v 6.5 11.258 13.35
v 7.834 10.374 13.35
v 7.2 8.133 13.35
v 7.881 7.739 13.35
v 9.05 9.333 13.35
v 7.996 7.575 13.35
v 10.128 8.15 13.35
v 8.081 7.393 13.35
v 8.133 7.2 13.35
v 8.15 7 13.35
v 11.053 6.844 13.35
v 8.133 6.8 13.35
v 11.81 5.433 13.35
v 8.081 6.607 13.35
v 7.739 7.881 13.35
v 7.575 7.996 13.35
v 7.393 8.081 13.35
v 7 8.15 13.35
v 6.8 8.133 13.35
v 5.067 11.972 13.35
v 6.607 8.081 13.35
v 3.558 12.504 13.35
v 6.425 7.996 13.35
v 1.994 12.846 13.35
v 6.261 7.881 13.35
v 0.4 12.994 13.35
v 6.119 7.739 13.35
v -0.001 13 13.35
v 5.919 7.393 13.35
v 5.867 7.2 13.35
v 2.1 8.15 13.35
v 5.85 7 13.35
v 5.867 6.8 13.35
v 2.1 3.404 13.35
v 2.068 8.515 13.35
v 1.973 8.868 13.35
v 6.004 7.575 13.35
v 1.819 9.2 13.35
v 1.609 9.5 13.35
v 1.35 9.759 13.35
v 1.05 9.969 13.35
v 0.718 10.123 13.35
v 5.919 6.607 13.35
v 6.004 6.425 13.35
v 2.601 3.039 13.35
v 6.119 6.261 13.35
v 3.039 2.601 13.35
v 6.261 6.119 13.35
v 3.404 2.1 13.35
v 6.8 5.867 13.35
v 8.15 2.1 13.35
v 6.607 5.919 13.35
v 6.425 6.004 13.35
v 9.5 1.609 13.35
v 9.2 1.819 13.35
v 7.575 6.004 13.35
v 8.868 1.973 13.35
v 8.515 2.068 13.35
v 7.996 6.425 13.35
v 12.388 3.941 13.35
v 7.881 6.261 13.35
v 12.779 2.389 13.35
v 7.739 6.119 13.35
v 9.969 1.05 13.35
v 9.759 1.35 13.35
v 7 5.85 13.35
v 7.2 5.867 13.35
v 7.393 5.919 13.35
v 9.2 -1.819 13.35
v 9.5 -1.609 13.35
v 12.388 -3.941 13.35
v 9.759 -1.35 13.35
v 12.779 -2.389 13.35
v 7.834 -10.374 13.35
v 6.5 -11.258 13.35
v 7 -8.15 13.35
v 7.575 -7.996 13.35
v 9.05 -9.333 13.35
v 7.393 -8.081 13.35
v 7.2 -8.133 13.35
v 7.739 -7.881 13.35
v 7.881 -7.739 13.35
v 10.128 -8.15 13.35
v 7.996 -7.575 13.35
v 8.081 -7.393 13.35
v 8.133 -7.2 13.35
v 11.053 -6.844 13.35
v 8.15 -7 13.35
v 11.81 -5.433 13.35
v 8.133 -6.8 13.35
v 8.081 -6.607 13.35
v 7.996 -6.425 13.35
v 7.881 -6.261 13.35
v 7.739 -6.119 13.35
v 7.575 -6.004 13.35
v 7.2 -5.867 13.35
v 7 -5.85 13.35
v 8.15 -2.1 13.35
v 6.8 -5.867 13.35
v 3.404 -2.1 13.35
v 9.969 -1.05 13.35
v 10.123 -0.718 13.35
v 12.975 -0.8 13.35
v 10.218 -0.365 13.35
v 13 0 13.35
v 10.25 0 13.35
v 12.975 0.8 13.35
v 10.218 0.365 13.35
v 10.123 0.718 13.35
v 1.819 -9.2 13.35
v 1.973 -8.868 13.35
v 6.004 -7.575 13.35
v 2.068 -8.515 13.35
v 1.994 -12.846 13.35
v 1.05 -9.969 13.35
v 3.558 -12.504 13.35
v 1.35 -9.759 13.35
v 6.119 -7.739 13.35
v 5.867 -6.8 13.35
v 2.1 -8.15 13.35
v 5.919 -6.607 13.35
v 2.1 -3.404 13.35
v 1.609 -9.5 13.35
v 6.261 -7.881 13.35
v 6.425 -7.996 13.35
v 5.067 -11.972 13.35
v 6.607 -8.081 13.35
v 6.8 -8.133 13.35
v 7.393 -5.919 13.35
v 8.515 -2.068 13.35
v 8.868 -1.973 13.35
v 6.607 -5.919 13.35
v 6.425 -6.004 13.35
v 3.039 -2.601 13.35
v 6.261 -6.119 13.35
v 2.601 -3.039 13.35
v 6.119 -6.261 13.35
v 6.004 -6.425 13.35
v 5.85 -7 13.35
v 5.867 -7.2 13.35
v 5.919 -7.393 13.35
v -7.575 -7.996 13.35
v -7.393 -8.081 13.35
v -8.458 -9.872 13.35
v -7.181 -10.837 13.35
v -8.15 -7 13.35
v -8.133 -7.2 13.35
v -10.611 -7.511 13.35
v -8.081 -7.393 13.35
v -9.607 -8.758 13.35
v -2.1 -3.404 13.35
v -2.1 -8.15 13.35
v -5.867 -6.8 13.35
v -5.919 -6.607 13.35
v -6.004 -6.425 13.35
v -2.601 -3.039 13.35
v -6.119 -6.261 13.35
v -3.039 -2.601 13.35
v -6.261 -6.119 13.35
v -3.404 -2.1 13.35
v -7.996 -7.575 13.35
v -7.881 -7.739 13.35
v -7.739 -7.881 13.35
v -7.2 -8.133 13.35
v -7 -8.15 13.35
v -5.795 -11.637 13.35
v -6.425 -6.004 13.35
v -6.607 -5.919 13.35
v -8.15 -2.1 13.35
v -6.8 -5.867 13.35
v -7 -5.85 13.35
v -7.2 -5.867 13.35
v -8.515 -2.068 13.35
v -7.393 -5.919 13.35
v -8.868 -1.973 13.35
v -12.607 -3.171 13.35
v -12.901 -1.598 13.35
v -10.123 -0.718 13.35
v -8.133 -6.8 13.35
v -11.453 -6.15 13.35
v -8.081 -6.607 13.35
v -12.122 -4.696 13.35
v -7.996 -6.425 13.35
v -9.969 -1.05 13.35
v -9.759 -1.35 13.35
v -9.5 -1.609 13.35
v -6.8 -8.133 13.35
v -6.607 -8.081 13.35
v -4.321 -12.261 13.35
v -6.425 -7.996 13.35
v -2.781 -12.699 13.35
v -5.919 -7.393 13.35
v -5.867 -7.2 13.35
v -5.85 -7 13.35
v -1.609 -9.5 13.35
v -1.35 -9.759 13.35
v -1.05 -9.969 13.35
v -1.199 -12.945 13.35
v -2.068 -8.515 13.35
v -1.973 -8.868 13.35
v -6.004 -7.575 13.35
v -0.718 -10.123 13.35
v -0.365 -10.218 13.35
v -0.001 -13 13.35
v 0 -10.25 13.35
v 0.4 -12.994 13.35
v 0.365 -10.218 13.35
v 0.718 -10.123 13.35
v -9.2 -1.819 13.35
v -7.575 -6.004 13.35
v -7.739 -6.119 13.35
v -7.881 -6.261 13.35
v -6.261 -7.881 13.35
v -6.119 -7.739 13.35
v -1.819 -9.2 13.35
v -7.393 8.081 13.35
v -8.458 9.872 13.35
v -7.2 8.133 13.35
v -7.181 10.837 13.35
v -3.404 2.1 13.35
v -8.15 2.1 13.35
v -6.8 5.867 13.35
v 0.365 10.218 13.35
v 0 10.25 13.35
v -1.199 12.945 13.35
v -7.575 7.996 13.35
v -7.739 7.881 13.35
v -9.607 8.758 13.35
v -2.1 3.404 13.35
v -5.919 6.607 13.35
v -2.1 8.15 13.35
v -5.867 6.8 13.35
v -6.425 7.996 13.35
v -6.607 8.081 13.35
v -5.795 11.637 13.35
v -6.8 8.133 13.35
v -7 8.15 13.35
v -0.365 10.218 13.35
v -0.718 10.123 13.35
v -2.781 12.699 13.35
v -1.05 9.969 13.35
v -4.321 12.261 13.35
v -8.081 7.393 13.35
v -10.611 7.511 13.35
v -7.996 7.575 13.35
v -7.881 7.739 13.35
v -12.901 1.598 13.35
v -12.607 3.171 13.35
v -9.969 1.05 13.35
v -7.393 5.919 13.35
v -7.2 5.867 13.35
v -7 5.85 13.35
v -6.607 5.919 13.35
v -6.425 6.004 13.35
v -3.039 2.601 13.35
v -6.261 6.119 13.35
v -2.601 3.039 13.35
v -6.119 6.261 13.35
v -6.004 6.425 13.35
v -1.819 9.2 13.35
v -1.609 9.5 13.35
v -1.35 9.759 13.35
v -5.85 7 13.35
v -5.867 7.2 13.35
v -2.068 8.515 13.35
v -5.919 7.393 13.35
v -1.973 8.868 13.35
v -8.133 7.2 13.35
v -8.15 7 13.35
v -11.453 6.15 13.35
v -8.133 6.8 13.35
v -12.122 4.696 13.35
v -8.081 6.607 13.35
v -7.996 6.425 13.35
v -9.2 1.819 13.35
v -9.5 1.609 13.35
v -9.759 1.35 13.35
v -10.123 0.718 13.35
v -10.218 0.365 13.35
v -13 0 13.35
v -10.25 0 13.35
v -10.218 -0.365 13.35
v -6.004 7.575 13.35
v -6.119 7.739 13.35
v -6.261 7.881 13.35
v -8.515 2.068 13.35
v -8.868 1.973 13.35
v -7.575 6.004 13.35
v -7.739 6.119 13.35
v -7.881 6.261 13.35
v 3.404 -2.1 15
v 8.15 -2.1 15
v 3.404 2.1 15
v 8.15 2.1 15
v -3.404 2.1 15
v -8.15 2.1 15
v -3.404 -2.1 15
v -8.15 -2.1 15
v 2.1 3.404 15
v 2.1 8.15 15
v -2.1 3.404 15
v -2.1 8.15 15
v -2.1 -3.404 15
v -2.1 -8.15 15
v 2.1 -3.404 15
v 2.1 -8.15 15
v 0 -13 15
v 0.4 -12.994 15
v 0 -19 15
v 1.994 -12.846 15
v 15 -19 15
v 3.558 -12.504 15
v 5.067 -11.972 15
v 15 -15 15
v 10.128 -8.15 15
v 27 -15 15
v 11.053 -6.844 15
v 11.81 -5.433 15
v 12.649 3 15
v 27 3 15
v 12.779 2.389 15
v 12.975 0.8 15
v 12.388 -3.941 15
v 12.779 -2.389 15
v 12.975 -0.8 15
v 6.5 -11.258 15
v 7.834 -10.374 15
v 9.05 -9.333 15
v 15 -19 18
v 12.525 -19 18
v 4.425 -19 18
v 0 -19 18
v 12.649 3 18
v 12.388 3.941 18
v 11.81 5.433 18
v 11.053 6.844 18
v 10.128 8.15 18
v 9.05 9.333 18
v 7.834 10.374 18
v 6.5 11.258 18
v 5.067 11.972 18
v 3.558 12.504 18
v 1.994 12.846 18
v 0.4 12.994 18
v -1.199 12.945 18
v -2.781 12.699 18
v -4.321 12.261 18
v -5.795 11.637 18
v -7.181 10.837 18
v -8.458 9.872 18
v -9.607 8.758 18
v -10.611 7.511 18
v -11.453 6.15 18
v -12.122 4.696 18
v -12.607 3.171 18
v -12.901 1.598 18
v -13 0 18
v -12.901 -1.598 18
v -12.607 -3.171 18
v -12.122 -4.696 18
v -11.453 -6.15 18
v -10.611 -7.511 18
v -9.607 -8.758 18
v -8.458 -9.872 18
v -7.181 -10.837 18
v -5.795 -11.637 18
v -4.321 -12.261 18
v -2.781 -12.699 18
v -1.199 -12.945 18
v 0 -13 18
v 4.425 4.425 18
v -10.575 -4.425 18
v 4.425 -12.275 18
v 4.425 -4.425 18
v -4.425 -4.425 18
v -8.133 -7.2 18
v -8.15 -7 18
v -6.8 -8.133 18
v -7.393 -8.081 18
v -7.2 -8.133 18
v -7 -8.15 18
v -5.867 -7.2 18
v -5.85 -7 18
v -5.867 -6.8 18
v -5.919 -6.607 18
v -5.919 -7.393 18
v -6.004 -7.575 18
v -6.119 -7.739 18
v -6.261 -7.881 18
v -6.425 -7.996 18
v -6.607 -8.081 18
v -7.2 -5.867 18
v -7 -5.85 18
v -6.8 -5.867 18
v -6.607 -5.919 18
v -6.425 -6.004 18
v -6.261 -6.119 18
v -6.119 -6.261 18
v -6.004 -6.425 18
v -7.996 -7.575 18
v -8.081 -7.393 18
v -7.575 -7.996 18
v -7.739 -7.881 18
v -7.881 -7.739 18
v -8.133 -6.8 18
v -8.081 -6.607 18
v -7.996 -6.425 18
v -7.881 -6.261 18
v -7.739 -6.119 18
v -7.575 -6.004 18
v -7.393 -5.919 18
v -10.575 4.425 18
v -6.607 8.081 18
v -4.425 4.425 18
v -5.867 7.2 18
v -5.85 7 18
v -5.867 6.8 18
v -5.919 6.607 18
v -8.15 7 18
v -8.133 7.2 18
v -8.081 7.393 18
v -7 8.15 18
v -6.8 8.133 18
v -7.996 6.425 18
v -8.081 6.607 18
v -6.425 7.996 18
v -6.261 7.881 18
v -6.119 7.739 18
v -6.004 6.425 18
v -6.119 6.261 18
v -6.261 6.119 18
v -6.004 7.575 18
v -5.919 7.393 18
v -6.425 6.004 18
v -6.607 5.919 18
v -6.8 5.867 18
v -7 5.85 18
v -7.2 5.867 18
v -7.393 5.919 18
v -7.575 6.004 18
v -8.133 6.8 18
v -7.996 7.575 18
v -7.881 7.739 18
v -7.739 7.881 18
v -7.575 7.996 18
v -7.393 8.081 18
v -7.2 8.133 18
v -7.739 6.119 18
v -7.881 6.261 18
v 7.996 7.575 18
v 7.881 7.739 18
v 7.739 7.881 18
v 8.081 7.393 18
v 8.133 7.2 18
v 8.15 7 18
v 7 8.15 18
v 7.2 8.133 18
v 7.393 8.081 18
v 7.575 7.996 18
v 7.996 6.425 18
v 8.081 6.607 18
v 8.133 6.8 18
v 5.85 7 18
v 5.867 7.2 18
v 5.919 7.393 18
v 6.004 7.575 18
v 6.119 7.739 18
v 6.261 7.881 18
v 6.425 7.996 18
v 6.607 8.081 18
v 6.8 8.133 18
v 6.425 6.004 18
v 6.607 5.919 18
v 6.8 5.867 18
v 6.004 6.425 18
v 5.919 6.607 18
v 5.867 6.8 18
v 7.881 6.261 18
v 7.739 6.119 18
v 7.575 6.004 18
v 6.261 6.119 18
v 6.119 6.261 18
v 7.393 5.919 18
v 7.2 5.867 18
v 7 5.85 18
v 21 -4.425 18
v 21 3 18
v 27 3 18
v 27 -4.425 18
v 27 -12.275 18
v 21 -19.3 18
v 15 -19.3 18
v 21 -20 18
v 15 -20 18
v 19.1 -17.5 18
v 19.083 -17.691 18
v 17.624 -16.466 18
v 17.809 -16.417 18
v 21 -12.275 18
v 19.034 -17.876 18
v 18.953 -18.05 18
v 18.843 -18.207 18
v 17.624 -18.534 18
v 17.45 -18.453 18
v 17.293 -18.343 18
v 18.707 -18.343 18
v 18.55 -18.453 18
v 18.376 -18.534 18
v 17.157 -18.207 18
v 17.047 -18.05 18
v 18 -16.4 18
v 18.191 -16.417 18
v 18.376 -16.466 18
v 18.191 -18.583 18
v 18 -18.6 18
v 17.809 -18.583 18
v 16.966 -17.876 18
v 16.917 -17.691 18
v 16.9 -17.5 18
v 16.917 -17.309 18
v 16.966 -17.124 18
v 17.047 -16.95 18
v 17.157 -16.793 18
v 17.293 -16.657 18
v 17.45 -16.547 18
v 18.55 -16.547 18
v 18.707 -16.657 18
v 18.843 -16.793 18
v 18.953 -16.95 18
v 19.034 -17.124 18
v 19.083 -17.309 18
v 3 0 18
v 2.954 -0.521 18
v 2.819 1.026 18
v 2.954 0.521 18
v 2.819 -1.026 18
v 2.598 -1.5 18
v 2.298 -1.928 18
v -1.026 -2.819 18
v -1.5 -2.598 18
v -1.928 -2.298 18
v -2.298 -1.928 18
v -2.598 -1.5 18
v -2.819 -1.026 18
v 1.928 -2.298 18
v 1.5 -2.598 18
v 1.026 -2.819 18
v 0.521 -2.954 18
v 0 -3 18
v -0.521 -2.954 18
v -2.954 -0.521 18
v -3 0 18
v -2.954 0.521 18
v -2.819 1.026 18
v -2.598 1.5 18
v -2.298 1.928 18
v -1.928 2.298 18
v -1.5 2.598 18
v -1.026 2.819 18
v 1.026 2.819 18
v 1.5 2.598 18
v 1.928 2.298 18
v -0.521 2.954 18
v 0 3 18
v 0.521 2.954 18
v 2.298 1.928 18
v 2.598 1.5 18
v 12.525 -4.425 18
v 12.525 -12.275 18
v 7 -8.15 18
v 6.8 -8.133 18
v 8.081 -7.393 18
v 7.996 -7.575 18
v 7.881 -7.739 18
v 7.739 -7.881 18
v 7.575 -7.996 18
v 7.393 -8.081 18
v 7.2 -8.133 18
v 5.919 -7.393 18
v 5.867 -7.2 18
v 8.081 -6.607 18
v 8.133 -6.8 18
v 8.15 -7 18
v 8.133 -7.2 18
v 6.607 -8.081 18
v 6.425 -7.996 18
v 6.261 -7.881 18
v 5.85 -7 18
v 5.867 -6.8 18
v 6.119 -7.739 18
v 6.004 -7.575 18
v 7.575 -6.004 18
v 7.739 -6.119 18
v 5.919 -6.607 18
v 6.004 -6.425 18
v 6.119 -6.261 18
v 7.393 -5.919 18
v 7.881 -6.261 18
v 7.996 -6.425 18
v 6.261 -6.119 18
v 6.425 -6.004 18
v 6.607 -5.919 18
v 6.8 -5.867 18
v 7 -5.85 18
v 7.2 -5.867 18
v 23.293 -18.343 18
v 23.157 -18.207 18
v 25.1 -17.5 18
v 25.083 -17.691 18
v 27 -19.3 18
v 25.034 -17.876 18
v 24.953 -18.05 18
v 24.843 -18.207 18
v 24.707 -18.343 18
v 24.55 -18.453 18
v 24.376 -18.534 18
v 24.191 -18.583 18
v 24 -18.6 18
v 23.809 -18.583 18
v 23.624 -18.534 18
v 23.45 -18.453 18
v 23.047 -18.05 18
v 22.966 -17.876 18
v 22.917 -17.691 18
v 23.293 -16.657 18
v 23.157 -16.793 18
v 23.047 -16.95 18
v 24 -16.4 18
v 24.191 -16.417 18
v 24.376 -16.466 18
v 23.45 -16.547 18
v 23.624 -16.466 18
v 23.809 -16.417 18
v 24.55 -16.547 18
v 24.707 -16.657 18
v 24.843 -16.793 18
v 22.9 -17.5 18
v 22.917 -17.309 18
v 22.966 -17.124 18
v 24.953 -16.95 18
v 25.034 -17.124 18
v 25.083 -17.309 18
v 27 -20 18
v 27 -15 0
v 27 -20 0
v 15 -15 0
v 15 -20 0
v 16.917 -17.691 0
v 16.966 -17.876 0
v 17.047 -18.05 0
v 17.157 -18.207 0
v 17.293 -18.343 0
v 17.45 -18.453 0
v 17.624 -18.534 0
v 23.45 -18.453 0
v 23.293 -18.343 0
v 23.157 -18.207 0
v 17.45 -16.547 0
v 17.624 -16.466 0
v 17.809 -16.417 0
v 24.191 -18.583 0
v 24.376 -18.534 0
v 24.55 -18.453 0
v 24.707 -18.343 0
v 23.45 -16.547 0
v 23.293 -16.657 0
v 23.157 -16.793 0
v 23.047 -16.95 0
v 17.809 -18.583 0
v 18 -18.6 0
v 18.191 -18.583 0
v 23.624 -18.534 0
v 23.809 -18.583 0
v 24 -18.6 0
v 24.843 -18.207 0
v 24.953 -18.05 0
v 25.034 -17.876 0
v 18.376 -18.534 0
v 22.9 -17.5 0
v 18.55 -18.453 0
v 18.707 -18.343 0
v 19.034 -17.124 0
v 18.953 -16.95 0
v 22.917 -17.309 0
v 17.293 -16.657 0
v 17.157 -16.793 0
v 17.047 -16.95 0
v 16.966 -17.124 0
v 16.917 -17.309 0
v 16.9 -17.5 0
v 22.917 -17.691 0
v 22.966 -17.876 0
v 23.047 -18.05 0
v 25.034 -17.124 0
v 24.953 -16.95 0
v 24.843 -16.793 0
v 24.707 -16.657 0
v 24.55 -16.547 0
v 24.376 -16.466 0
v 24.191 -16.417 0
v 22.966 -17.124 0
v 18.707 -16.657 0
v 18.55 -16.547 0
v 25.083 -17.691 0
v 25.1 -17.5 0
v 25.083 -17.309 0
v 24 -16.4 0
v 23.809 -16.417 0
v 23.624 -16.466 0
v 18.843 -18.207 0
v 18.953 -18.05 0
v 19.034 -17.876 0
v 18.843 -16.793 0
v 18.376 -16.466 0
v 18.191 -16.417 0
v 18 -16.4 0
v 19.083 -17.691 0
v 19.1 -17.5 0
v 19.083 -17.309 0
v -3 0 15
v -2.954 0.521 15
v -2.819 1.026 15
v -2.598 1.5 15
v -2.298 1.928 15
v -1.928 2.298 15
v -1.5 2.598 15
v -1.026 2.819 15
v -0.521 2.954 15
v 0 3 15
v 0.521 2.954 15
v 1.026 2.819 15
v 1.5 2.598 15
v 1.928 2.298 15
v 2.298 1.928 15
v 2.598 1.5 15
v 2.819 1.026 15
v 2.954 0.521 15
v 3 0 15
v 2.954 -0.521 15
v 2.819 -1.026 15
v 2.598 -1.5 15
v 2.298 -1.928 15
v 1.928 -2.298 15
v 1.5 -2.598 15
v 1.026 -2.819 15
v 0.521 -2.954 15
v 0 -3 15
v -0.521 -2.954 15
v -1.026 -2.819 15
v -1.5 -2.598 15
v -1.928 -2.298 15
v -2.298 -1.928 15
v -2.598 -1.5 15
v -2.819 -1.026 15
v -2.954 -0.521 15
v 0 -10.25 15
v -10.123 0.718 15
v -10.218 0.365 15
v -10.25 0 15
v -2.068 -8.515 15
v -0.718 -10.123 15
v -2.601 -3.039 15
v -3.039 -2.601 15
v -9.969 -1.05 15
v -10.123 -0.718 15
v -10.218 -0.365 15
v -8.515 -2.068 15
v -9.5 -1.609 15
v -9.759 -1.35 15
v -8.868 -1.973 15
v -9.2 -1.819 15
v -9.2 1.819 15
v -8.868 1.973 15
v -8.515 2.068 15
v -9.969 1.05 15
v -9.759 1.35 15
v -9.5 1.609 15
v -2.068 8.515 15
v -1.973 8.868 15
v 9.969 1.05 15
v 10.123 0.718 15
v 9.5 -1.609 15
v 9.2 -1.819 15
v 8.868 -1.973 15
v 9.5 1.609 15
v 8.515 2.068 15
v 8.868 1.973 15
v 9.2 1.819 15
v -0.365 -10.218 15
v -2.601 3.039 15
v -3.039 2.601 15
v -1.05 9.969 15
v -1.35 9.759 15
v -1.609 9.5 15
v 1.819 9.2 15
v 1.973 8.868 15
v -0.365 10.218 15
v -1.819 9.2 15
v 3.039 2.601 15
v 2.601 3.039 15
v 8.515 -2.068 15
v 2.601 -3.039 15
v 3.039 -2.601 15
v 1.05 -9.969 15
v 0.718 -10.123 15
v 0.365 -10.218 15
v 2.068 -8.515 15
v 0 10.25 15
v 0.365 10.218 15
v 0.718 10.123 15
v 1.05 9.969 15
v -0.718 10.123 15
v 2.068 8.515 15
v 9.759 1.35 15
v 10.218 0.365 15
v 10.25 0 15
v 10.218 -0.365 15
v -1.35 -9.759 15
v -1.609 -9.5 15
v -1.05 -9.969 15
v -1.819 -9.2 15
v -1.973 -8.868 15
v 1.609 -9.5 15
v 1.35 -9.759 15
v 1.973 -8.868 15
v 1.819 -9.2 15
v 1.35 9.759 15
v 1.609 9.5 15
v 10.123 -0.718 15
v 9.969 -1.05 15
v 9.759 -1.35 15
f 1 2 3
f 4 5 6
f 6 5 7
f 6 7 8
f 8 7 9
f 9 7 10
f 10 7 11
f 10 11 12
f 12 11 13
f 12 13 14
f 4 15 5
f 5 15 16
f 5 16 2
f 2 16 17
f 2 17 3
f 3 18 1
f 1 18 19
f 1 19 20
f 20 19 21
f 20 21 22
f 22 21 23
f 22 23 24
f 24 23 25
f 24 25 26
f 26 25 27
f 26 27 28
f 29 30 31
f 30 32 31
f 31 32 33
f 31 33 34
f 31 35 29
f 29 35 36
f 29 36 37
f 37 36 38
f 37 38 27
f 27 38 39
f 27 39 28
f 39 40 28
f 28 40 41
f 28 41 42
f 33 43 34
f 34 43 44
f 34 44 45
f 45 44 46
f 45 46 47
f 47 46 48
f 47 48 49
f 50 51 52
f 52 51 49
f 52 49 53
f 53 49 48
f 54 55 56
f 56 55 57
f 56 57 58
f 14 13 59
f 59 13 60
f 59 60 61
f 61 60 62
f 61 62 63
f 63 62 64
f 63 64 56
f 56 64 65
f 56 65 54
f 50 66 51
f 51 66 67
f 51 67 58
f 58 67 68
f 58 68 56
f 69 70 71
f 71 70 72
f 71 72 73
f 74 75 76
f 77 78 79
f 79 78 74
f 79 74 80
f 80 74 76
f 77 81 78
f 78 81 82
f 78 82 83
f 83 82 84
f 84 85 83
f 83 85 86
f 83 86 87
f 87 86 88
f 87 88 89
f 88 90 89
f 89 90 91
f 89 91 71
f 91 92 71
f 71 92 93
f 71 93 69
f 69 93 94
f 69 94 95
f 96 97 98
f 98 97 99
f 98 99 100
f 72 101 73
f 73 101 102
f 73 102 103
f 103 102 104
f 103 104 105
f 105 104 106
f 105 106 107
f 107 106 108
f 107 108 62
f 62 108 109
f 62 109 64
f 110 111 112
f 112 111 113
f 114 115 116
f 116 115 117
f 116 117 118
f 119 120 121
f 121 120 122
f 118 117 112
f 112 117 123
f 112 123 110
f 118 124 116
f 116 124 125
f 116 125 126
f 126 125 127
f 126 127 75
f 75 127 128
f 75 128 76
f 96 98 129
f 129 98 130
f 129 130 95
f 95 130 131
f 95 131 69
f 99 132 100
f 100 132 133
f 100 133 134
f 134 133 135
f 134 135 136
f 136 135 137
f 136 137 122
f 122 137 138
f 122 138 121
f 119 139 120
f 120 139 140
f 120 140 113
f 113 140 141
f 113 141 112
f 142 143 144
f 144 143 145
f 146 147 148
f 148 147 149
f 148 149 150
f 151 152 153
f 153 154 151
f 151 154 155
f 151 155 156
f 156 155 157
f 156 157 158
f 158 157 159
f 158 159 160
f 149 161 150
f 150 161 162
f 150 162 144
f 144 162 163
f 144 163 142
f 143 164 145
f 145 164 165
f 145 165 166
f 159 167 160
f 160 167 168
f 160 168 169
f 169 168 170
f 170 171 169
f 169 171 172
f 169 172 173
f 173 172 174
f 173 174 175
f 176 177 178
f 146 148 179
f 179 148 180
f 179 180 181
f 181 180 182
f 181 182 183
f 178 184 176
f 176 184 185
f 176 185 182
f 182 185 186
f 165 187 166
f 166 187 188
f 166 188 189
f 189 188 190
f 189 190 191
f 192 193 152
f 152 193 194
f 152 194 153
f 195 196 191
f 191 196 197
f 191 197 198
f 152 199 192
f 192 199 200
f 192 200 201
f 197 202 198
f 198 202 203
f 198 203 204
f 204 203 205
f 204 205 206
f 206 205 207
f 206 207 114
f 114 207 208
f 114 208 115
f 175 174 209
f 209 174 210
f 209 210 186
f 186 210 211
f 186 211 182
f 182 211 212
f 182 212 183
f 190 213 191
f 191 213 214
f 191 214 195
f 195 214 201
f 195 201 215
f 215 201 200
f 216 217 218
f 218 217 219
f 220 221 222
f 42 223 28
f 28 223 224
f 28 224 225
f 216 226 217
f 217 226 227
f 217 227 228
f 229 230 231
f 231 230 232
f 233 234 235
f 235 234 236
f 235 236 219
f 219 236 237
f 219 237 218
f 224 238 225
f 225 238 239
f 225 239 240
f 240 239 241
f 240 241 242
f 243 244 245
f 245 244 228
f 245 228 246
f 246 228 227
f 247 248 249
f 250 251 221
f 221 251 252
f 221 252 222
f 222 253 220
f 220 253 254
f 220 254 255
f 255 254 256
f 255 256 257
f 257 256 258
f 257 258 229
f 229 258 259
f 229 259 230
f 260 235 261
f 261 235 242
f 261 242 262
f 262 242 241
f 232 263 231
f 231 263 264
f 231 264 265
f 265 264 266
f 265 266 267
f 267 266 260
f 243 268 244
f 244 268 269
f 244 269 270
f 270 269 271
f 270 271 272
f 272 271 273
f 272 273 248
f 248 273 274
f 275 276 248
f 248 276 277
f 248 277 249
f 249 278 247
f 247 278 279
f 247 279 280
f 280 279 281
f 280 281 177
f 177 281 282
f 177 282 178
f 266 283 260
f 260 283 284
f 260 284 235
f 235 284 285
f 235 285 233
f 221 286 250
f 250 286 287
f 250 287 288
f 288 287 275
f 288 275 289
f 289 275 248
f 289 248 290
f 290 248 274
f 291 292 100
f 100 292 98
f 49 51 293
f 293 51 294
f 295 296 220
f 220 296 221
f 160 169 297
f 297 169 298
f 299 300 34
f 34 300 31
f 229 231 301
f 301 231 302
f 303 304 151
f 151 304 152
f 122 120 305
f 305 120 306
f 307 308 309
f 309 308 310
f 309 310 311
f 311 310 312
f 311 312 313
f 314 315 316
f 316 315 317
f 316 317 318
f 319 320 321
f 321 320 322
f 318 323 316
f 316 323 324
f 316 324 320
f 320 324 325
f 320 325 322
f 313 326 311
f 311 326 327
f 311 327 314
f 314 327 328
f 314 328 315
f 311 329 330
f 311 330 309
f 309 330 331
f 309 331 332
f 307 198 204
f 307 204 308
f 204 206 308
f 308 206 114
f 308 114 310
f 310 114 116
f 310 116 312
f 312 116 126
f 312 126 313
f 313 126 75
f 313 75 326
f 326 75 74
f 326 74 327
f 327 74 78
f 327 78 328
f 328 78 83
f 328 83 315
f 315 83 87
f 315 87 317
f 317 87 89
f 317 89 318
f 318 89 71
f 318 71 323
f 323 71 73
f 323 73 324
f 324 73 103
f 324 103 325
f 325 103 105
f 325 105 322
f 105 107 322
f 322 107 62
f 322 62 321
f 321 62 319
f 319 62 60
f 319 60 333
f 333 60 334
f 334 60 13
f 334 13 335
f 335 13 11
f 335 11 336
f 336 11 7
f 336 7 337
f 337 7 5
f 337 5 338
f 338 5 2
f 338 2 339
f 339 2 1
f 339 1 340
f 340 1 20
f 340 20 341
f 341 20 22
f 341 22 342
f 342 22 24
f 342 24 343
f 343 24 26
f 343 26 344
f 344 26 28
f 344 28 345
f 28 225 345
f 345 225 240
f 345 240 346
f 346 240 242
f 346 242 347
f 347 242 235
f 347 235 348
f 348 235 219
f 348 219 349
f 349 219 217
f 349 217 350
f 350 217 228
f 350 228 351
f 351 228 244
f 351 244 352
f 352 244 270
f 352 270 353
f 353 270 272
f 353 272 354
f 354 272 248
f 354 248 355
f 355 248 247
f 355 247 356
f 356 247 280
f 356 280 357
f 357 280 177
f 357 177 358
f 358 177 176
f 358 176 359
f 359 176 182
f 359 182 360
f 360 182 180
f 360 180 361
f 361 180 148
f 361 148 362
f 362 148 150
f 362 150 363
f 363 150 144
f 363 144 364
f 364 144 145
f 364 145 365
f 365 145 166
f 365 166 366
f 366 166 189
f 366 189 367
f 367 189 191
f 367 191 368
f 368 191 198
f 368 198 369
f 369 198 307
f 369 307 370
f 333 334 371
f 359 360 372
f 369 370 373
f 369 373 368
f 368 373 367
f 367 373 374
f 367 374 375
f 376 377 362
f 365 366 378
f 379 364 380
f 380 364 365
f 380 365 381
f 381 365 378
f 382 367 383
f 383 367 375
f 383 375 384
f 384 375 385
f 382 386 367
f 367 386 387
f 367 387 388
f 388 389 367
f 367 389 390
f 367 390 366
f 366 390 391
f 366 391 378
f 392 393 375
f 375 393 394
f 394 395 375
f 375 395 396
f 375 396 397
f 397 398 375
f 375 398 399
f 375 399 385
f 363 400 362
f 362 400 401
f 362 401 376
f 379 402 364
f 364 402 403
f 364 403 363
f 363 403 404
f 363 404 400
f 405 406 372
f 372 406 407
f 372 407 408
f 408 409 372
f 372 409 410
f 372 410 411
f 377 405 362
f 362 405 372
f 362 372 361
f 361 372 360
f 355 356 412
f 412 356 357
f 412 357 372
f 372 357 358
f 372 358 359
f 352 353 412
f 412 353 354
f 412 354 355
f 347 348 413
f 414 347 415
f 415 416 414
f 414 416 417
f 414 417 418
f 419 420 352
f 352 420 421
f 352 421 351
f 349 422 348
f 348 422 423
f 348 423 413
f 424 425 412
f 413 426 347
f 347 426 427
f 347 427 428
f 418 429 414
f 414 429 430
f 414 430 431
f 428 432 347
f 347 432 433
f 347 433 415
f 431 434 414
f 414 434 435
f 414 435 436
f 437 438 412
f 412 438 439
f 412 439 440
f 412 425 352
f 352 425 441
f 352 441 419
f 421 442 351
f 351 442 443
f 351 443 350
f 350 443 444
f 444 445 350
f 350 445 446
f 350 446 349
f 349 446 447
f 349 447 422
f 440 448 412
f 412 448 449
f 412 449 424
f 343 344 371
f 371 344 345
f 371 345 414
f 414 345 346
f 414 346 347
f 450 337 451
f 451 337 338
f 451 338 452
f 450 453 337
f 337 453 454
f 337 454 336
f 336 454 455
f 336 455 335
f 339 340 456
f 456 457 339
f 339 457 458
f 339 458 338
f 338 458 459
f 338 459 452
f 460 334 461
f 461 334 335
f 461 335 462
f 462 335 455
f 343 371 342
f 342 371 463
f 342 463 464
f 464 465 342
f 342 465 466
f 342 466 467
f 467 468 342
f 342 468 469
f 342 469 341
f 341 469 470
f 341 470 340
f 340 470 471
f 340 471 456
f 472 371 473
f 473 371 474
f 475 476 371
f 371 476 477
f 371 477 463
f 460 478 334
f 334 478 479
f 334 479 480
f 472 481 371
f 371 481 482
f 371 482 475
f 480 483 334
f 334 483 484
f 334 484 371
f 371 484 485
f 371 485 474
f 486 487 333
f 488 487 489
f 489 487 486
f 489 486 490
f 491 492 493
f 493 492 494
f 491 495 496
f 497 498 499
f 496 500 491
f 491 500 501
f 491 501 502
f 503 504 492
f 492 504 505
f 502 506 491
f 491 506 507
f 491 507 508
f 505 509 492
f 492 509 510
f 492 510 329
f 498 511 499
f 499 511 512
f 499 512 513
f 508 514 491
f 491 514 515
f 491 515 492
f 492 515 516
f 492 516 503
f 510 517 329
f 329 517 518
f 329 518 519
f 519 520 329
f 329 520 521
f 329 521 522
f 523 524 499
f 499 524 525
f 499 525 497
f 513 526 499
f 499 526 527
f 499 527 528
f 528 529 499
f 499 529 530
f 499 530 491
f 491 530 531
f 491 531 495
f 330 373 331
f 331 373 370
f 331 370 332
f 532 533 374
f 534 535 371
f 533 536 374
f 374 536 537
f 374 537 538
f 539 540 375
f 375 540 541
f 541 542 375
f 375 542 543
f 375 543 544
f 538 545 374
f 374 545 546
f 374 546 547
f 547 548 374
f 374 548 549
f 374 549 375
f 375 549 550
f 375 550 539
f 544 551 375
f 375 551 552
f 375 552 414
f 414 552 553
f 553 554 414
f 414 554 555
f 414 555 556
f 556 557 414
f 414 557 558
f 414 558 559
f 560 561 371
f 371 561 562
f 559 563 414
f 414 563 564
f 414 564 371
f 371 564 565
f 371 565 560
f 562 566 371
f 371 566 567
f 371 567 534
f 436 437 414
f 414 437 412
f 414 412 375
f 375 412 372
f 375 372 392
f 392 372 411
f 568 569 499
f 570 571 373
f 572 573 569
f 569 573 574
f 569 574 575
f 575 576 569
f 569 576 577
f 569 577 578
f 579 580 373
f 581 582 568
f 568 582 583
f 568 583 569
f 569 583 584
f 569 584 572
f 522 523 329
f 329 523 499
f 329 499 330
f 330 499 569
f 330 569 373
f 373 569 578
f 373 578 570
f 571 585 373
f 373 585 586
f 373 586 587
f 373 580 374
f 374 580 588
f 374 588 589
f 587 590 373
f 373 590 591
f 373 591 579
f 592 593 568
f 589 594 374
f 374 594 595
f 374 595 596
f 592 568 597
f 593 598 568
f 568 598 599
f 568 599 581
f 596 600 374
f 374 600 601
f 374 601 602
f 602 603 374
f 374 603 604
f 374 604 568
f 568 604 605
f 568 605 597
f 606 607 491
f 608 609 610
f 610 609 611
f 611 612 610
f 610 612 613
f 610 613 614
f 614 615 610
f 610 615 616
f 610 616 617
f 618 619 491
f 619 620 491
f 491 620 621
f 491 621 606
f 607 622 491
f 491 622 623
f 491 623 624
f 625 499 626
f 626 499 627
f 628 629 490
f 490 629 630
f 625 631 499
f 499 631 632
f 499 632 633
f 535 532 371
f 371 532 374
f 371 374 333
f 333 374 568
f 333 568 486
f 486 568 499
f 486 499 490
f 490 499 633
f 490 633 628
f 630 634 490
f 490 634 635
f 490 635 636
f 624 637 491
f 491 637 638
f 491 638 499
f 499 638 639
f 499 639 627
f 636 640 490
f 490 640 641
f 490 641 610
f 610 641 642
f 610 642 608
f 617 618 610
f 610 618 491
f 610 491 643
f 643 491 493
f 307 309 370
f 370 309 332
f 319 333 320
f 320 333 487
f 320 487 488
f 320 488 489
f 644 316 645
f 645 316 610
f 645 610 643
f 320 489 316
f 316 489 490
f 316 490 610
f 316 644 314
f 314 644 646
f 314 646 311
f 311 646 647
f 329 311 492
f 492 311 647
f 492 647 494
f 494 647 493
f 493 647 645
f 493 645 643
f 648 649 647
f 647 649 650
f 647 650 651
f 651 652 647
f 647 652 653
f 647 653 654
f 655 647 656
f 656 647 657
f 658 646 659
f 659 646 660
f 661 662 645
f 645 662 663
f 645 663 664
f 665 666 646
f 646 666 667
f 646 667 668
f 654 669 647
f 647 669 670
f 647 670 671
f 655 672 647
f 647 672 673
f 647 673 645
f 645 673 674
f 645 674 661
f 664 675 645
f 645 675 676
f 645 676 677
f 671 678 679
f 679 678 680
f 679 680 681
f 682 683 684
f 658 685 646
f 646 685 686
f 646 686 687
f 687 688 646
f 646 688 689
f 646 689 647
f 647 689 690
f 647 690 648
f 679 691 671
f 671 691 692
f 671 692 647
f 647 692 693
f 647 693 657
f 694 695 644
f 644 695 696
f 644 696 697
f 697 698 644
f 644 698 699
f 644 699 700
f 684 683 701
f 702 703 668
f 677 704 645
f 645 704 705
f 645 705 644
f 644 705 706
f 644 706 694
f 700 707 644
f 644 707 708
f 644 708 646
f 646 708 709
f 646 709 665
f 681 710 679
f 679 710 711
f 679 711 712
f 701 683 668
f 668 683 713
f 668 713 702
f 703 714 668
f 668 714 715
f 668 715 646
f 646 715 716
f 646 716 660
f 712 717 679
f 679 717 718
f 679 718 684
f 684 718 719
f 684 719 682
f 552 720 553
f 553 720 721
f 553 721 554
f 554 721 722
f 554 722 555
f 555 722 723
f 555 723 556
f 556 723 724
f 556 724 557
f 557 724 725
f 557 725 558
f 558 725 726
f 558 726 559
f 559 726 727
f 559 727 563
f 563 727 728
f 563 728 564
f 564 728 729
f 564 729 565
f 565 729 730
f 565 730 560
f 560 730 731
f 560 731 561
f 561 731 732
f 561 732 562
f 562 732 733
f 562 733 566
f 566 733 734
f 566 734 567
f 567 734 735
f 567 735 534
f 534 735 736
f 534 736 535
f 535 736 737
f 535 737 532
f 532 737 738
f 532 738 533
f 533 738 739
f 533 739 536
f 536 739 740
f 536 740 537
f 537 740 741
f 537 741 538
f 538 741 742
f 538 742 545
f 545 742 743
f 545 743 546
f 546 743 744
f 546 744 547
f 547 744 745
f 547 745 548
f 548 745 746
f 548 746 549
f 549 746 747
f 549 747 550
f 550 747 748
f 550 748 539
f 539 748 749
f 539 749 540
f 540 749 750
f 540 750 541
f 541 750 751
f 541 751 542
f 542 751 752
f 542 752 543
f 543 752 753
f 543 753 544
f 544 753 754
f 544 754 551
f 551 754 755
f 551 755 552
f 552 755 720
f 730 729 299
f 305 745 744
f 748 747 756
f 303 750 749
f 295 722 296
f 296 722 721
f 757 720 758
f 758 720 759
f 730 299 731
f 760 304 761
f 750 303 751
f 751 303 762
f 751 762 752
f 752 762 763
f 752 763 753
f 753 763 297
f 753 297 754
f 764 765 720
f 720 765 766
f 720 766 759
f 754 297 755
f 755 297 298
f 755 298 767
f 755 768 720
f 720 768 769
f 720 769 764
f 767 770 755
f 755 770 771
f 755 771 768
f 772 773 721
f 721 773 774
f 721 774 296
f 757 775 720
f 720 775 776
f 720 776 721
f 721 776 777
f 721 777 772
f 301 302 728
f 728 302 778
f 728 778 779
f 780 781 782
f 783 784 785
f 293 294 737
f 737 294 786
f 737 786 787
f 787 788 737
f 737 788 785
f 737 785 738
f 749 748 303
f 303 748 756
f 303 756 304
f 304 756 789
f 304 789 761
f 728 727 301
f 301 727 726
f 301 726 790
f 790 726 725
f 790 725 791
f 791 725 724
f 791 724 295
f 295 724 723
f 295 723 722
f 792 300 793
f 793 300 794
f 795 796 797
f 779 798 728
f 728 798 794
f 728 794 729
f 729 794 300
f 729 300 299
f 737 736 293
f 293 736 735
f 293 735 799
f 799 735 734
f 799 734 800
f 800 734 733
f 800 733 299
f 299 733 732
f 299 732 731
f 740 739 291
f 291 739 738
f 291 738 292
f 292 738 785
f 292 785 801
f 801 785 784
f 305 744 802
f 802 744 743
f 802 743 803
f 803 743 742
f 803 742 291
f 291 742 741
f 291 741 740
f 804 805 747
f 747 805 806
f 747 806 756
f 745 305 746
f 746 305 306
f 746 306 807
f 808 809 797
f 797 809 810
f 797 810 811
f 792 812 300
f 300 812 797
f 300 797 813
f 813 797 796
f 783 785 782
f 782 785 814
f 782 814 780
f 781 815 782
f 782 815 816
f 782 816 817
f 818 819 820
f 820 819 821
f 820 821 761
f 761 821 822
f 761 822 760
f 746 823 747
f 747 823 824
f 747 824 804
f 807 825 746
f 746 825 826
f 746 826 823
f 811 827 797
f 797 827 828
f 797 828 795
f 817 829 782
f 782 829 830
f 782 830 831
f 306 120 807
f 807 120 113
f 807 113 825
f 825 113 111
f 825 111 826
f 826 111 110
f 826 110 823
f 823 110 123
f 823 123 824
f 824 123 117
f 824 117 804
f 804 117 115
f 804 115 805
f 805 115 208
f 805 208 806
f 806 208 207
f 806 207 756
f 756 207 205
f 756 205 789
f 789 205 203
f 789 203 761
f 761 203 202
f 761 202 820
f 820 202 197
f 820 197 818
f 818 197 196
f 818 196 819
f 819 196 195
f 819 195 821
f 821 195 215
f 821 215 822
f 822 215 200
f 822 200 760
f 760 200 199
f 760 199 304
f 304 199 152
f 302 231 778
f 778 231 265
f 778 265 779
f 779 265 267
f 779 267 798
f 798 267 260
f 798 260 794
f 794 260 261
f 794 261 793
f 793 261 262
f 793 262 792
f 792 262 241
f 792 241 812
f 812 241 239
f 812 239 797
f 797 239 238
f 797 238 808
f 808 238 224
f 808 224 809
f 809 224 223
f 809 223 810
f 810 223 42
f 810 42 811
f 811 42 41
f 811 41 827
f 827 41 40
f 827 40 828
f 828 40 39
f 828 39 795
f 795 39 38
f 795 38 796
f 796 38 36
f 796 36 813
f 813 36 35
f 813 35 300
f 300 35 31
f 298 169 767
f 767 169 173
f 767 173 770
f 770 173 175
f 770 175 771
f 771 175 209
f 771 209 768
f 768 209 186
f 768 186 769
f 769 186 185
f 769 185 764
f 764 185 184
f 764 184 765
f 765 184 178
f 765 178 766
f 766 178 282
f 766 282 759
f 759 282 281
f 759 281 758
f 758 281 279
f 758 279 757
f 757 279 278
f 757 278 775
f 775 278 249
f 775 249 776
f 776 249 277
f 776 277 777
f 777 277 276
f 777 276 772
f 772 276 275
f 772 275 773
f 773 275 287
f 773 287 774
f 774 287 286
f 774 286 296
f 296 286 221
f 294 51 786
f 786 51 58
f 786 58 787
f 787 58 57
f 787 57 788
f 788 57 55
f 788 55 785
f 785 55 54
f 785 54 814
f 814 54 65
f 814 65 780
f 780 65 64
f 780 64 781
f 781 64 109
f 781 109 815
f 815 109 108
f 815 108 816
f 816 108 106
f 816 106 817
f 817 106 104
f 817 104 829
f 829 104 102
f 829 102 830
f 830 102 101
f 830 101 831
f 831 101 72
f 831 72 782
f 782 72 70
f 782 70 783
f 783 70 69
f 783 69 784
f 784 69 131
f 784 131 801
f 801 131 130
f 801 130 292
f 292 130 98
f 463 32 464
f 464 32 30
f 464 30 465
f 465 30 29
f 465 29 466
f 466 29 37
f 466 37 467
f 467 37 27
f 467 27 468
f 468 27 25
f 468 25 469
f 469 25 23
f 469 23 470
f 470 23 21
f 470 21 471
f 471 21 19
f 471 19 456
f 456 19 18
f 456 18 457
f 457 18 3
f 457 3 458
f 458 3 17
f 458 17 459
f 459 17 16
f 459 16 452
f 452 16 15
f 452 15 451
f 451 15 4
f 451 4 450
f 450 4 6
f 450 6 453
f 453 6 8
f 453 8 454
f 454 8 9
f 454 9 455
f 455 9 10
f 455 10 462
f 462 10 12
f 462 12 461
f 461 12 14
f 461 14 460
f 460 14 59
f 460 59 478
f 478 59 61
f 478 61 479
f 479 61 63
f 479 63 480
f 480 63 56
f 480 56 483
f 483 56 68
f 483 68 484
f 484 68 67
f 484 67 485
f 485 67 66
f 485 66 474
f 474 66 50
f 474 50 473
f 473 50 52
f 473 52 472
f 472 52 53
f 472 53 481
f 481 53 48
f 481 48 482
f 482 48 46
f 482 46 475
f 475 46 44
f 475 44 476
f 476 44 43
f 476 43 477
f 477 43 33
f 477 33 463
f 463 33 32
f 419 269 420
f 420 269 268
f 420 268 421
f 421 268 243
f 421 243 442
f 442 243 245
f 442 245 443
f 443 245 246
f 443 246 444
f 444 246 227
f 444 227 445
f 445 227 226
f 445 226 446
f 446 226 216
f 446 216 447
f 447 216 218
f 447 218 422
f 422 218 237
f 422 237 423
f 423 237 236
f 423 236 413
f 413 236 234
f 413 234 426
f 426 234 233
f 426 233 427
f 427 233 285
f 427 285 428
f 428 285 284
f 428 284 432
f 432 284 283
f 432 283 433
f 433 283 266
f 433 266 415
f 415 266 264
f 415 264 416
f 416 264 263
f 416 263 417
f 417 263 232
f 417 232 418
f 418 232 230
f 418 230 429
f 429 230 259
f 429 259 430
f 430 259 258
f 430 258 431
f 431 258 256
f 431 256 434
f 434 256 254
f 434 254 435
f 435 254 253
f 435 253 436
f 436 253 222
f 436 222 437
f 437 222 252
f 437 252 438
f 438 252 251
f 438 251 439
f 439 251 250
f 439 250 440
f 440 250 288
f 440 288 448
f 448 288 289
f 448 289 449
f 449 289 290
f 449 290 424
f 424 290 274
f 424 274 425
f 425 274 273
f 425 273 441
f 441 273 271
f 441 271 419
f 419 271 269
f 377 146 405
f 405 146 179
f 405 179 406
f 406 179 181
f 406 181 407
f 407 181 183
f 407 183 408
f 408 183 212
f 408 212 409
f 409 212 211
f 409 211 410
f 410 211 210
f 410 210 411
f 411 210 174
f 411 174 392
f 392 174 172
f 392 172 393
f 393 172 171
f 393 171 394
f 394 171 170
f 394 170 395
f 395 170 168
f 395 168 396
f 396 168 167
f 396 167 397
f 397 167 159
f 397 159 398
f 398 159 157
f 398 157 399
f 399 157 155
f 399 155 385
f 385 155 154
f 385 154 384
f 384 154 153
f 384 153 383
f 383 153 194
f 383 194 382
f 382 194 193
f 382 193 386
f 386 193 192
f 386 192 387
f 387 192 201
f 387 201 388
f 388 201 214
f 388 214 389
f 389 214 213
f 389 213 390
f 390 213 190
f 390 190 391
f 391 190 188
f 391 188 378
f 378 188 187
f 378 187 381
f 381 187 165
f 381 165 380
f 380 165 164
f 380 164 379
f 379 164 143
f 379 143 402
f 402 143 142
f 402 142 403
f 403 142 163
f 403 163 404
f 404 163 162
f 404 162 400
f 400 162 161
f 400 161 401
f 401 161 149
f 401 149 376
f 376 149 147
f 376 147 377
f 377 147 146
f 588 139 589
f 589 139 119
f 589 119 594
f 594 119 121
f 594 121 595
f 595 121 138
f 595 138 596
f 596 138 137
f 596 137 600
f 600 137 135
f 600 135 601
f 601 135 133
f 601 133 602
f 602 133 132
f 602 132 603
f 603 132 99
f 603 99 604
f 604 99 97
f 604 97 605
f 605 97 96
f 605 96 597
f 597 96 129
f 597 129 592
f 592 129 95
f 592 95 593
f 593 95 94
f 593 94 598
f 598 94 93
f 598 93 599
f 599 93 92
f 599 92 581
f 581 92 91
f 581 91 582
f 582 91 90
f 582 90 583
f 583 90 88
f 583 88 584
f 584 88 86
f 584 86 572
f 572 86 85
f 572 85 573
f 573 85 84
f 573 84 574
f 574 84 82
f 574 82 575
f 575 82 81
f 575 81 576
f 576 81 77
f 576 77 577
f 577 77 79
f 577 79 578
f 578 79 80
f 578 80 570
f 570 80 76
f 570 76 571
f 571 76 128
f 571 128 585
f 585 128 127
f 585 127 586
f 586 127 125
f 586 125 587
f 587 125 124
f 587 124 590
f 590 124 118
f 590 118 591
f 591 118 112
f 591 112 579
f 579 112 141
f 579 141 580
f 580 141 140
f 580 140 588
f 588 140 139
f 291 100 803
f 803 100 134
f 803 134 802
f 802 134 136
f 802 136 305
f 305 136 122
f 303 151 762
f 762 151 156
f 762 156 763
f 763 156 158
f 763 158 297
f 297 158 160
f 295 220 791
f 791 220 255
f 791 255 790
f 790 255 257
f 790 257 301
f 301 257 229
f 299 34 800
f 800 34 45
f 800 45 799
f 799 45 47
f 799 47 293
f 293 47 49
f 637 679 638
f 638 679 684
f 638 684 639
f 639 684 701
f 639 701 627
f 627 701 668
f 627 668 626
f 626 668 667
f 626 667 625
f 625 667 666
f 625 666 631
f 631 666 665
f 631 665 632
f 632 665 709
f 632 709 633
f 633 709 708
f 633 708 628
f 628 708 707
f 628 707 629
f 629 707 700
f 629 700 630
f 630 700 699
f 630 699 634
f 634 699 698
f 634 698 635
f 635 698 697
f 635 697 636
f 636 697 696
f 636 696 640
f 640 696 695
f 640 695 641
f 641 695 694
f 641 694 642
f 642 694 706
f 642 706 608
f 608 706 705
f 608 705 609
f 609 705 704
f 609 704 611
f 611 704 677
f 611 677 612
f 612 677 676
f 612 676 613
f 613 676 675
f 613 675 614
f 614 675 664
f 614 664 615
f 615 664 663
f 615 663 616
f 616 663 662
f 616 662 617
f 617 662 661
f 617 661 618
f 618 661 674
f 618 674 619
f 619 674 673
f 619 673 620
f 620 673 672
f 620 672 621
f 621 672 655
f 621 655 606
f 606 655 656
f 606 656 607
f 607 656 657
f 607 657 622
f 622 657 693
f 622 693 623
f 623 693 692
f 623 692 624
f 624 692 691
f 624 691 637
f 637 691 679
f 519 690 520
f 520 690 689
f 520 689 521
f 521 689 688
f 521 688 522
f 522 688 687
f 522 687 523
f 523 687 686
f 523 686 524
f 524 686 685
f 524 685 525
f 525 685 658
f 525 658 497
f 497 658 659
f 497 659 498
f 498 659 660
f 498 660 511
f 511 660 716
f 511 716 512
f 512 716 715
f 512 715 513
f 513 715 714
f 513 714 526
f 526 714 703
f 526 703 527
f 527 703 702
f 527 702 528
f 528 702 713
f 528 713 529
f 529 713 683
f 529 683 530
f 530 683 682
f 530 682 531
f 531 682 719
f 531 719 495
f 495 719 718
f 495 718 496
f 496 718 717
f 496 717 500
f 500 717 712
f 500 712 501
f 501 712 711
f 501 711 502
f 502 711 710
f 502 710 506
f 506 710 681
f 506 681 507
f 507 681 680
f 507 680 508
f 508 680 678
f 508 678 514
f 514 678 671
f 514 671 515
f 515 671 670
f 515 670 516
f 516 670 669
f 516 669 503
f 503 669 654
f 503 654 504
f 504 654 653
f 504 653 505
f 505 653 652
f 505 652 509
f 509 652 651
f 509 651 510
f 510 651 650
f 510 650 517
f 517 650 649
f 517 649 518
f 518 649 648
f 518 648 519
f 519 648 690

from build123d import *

# Parameters (mm, degrees)
STOCK_HORN_ATTACHMENT_START          = 15
STOCK_HORN_ATTACHMENT_PROFILE_R      = 13
STOCK_HORN_ATTACHMENT_DEPTH          = 3
FINGER_ARM_START                     = 15
FINGER_ARM_PROFILE_W                 = 27
FINGER_ARM_PROFILE_H                 = 22
FINGER_ARM_DEPTH                     = 3
DESCENDING_CONTACT_FINGER_PROFILE_W  = 12
DESCENDING_CONTACT_FINGER_PROFILE_H  = 5
DESCENDING_CONTACT_FINGER_DEPTH      = 18
HORN_CENTER_ACCESS_START             = -50
HORN_CENTER_ACCESS_PROFILE_R         = 3
HORN_CENTER_ACCESS_DEPTH             = 89.118237105
CAPTURED_HORN_KEY_BOSS_START         = 13.35
CAPTURED_HORN_KEY_BOSS_PROFILE_R     = 13
CAPTURED_HORN_KEY_BOSS_DEPTH         = 1.65
KEY_POCKET_HUB_START                 = 13.35
STOCK_HORN_POCKET_HUB_R              = 3.55
KEY_POCKET_HUB_DEPTH                 = 1.65
KEY_POCKET_HORIZONTAL_START          = 13.35
STOCK_HORN_POCKET_HORIZONTAL_W       = 16.3
STOCK_HORN_POCKET_HORIZONTAL_H       = 4.2
KEY_POCKET_HORIZONTAL_DEPTH          = 1.65
KEY_POCKET_VERTICAL_START            = 13.35
STOCK_HORN_POCKET_VERTICAL_W         = 4.2
STOCK_HORN_POCKET_VERTICAL_H         = 16.3
KEY_POCKET_VERTICAL_DEPTH            = 1.65
KEY_POCKET_ROUNDED_TIPS_START        = 13.35
STOCK_HORN_POCKET_ROUNDED_TIPS_R     = 2.1
KEY_POCKET_ROUNDED_TIPS_DEPTH        = 1.65
UNMODIFIED_HORN_CAPTURE_M2_START     = -50
UNMODIFIED_HORN_CAPTURE_M2_PROFILE_R = 1.15
UNMODIFIED_HORN_CAPTURE_M2_DEPTH     = 89.118237105
HUB_CLEARANCE_IN_KEY_BOSS_ONLY_START = 13.35
HORN_CENTER_HUB_CLEARANCE_R          = 4
HUB_CLEARANCE_IN_KEY_BOSS_ONLY_DEPTH = 1.65
CONTACT_PAD_KEEPER_START             = -50
CONTACT_PAD_KEEPER_PROFILE_R         = 1.1
CONTACT_PAD_KEEPER_DEPTH             = 89.118237105


with BuildPart() as part:
    # Stock_horn_attachment_profile → Stock_horn_attachment (new body)
    with BuildSketch(Plane.XY.offset(STOCK_HORN_ATTACHMENT_START)):
        Circle(STOCK_HORN_ATTACHMENT_PROFILE_R)
    extrude(amount=STOCK_HORN_ATTACHMENT_DEPTH)

    # Finger_arm_profile → Finger_arm (add)
    with BuildSketch(Plane.XY.offset(FINGER_ARM_START)):
        with Locations((13.5, -8)):
            Rectangle(FINGER_ARM_PROFILE_W, FINGER_ARM_PROFILE_H)
    extrude(amount=FINGER_ARM_DEPTH)

    # Descending_contact_finger_profile → Descending_contact_finger (add)
    with BuildSketch(Plane.XY):
        with Locations((21, -17.5)):
            Rectangle(DESCENDING_CONTACT_FINGER_PROFILE_W, DESCENDING_CONTACT_FINGER_PROFILE_H)
    extrude(amount=DESCENDING_CONTACT_FINGER_DEPTH)

    # Horn_center_access_profile → Horn_center_access (cut, through all)
    with BuildSketch(Plane.XY.offset(HORN_CENTER_ACCESS_START)):
        Circle(HORN_CENTER_ACCESS_PROFILE_R)
    extrude(amount=HORN_CENTER_ACCESS_DEPTH, mode=Mode.SUBTRACT)

    # Captured_horn_key_boss_profile → Captured_horn_key_boss (add)
    with BuildSketch(Plane.XY.offset(CAPTURED_HORN_KEY_BOSS_START)):
        with Locations(Location((0, 0, 0), (0, 0, 270))):
            Circle(CAPTURED_HORN_KEY_BOSS_PROFILE_R)
    extrude(amount=CAPTURED_HORN_KEY_BOSS_DEPTH)

    # Stock_horn_pocket_Hub → Key_pocket_Hub (cut)
    with BuildSketch(Plane.XY.offset(KEY_POCKET_HUB_START)):
        Circle(STOCK_HORN_POCKET_HUB_R)
    extrude(amount=KEY_POCKET_HUB_DEPTH, mode=Mode.SUBTRACT)

    # Stock_horn_pocket_Horizontal → Key_pocket_Horizontal (cut)
    with BuildSketch(Plane.XY.offset(KEY_POCKET_HORIZONTAL_START)):
        Rectangle(STOCK_HORN_POCKET_HORIZONTAL_W, STOCK_HORN_POCKET_HORIZONTAL_H)
    extrude(amount=KEY_POCKET_HORIZONTAL_DEPTH, mode=Mode.SUBTRACT)

    # Stock_horn_pocket_Vertical → Key_pocket_Vertical (cut)
    with BuildSketch(Plane.XY.offset(KEY_POCKET_VERTICAL_START)):
        Rectangle(STOCK_HORN_POCKET_VERTICAL_W, STOCK_HORN_POCKET_VERTICAL_H)
    extrude(amount=KEY_POCKET_VERTICAL_DEPTH, mode=Mode.SUBTRACT)

    # Stock_horn_pocket_Rounded_tips → Key_pocket_Rounded_tips (cut)
    with BuildSketch(Plane.XY.offset(KEY_POCKET_ROUNDED_TIPS_START)):
        with Locations((8.15, 0)):
            Circle(STOCK_HORN_POCKET_ROUNDED_TIPS_R)
        with Locations((-8.15, 0)):
            Circle(STOCK_HORN_POCKET_ROUNDED_TIPS_R)
        with Locations((0, 8.15)):
            Circle(STOCK_HORN_POCKET_ROUNDED_TIPS_R)
        with Locations((0, -8.15)):
            Circle(STOCK_HORN_POCKET_ROUNDED_TIPS_R)
    extrude(amount=KEY_POCKET_ROUNDED_TIPS_DEPTH, mode=Mode.SUBTRACT)

    # Unmodified_horn_capture_M2_profile → Unmodified_horn_capture_M2 (cut, through all)
    with BuildSketch(Plane.XY.offset(UNMODIFIED_HORN_CAPTURE_M2_START)):
        with Locations((7, 7)):
            Circle(UNMODIFIED_HORN_CAPTURE_M2_PROFILE_R)
        with Locations((-7, 7)):
            Circle(UNMODIFIED_HORN_CAPTURE_M2_PROFILE_R)
        with Locations((-7, -7)):
            Circle(UNMODIFIED_HORN_CAPTURE_M2_PROFILE_R)
        with Locations((7, -7)):
            Circle(UNMODIFIED_HORN_CAPTURE_M2_PROFILE_R)
    extrude(amount=UNMODIFIED_HORN_CAPTURE_M2_DEPTH, mode=Mode.SUBTRACT)

    # Horn_center_hub_clearance → Hub_clearance_in_key_boss_only (cut)
    with BuildSketch(Plane.XY.offset(HUB_CLEARANCE_IN_KEY_BOSS_ONLY_START)):
        Circle(HORN_CENTER_HUB_CLEARANCE_R)
    extrude(amount=HUB_CLEARANCE_IN_KEY_BOSS_ONLY_DEPTH, mode=Mode.SUBTRACT)

    # Contact_pad_keeper_profile → Contact_pad_keeper (cut, through all)
    with BuildSketch(Plane.XY.offset(CONTACT_PAD_KEEPER_START)):
        with Locations(Location((18, -17.5, 0), (0, 0, 180))):
            Circle(CONTACT_PAD_KEEPER_PROFILE_R)
        with Locations(Location((24, -17.5, 0), (0, 0, 180))):
            Circle(CONTACT_PAD_KEEPER_PROFILE_R)
    extrude(amount=CONTACT_PAD_KEEPER_DEPTH, mode=Mode.SUBTRACT)


solid = part.part
